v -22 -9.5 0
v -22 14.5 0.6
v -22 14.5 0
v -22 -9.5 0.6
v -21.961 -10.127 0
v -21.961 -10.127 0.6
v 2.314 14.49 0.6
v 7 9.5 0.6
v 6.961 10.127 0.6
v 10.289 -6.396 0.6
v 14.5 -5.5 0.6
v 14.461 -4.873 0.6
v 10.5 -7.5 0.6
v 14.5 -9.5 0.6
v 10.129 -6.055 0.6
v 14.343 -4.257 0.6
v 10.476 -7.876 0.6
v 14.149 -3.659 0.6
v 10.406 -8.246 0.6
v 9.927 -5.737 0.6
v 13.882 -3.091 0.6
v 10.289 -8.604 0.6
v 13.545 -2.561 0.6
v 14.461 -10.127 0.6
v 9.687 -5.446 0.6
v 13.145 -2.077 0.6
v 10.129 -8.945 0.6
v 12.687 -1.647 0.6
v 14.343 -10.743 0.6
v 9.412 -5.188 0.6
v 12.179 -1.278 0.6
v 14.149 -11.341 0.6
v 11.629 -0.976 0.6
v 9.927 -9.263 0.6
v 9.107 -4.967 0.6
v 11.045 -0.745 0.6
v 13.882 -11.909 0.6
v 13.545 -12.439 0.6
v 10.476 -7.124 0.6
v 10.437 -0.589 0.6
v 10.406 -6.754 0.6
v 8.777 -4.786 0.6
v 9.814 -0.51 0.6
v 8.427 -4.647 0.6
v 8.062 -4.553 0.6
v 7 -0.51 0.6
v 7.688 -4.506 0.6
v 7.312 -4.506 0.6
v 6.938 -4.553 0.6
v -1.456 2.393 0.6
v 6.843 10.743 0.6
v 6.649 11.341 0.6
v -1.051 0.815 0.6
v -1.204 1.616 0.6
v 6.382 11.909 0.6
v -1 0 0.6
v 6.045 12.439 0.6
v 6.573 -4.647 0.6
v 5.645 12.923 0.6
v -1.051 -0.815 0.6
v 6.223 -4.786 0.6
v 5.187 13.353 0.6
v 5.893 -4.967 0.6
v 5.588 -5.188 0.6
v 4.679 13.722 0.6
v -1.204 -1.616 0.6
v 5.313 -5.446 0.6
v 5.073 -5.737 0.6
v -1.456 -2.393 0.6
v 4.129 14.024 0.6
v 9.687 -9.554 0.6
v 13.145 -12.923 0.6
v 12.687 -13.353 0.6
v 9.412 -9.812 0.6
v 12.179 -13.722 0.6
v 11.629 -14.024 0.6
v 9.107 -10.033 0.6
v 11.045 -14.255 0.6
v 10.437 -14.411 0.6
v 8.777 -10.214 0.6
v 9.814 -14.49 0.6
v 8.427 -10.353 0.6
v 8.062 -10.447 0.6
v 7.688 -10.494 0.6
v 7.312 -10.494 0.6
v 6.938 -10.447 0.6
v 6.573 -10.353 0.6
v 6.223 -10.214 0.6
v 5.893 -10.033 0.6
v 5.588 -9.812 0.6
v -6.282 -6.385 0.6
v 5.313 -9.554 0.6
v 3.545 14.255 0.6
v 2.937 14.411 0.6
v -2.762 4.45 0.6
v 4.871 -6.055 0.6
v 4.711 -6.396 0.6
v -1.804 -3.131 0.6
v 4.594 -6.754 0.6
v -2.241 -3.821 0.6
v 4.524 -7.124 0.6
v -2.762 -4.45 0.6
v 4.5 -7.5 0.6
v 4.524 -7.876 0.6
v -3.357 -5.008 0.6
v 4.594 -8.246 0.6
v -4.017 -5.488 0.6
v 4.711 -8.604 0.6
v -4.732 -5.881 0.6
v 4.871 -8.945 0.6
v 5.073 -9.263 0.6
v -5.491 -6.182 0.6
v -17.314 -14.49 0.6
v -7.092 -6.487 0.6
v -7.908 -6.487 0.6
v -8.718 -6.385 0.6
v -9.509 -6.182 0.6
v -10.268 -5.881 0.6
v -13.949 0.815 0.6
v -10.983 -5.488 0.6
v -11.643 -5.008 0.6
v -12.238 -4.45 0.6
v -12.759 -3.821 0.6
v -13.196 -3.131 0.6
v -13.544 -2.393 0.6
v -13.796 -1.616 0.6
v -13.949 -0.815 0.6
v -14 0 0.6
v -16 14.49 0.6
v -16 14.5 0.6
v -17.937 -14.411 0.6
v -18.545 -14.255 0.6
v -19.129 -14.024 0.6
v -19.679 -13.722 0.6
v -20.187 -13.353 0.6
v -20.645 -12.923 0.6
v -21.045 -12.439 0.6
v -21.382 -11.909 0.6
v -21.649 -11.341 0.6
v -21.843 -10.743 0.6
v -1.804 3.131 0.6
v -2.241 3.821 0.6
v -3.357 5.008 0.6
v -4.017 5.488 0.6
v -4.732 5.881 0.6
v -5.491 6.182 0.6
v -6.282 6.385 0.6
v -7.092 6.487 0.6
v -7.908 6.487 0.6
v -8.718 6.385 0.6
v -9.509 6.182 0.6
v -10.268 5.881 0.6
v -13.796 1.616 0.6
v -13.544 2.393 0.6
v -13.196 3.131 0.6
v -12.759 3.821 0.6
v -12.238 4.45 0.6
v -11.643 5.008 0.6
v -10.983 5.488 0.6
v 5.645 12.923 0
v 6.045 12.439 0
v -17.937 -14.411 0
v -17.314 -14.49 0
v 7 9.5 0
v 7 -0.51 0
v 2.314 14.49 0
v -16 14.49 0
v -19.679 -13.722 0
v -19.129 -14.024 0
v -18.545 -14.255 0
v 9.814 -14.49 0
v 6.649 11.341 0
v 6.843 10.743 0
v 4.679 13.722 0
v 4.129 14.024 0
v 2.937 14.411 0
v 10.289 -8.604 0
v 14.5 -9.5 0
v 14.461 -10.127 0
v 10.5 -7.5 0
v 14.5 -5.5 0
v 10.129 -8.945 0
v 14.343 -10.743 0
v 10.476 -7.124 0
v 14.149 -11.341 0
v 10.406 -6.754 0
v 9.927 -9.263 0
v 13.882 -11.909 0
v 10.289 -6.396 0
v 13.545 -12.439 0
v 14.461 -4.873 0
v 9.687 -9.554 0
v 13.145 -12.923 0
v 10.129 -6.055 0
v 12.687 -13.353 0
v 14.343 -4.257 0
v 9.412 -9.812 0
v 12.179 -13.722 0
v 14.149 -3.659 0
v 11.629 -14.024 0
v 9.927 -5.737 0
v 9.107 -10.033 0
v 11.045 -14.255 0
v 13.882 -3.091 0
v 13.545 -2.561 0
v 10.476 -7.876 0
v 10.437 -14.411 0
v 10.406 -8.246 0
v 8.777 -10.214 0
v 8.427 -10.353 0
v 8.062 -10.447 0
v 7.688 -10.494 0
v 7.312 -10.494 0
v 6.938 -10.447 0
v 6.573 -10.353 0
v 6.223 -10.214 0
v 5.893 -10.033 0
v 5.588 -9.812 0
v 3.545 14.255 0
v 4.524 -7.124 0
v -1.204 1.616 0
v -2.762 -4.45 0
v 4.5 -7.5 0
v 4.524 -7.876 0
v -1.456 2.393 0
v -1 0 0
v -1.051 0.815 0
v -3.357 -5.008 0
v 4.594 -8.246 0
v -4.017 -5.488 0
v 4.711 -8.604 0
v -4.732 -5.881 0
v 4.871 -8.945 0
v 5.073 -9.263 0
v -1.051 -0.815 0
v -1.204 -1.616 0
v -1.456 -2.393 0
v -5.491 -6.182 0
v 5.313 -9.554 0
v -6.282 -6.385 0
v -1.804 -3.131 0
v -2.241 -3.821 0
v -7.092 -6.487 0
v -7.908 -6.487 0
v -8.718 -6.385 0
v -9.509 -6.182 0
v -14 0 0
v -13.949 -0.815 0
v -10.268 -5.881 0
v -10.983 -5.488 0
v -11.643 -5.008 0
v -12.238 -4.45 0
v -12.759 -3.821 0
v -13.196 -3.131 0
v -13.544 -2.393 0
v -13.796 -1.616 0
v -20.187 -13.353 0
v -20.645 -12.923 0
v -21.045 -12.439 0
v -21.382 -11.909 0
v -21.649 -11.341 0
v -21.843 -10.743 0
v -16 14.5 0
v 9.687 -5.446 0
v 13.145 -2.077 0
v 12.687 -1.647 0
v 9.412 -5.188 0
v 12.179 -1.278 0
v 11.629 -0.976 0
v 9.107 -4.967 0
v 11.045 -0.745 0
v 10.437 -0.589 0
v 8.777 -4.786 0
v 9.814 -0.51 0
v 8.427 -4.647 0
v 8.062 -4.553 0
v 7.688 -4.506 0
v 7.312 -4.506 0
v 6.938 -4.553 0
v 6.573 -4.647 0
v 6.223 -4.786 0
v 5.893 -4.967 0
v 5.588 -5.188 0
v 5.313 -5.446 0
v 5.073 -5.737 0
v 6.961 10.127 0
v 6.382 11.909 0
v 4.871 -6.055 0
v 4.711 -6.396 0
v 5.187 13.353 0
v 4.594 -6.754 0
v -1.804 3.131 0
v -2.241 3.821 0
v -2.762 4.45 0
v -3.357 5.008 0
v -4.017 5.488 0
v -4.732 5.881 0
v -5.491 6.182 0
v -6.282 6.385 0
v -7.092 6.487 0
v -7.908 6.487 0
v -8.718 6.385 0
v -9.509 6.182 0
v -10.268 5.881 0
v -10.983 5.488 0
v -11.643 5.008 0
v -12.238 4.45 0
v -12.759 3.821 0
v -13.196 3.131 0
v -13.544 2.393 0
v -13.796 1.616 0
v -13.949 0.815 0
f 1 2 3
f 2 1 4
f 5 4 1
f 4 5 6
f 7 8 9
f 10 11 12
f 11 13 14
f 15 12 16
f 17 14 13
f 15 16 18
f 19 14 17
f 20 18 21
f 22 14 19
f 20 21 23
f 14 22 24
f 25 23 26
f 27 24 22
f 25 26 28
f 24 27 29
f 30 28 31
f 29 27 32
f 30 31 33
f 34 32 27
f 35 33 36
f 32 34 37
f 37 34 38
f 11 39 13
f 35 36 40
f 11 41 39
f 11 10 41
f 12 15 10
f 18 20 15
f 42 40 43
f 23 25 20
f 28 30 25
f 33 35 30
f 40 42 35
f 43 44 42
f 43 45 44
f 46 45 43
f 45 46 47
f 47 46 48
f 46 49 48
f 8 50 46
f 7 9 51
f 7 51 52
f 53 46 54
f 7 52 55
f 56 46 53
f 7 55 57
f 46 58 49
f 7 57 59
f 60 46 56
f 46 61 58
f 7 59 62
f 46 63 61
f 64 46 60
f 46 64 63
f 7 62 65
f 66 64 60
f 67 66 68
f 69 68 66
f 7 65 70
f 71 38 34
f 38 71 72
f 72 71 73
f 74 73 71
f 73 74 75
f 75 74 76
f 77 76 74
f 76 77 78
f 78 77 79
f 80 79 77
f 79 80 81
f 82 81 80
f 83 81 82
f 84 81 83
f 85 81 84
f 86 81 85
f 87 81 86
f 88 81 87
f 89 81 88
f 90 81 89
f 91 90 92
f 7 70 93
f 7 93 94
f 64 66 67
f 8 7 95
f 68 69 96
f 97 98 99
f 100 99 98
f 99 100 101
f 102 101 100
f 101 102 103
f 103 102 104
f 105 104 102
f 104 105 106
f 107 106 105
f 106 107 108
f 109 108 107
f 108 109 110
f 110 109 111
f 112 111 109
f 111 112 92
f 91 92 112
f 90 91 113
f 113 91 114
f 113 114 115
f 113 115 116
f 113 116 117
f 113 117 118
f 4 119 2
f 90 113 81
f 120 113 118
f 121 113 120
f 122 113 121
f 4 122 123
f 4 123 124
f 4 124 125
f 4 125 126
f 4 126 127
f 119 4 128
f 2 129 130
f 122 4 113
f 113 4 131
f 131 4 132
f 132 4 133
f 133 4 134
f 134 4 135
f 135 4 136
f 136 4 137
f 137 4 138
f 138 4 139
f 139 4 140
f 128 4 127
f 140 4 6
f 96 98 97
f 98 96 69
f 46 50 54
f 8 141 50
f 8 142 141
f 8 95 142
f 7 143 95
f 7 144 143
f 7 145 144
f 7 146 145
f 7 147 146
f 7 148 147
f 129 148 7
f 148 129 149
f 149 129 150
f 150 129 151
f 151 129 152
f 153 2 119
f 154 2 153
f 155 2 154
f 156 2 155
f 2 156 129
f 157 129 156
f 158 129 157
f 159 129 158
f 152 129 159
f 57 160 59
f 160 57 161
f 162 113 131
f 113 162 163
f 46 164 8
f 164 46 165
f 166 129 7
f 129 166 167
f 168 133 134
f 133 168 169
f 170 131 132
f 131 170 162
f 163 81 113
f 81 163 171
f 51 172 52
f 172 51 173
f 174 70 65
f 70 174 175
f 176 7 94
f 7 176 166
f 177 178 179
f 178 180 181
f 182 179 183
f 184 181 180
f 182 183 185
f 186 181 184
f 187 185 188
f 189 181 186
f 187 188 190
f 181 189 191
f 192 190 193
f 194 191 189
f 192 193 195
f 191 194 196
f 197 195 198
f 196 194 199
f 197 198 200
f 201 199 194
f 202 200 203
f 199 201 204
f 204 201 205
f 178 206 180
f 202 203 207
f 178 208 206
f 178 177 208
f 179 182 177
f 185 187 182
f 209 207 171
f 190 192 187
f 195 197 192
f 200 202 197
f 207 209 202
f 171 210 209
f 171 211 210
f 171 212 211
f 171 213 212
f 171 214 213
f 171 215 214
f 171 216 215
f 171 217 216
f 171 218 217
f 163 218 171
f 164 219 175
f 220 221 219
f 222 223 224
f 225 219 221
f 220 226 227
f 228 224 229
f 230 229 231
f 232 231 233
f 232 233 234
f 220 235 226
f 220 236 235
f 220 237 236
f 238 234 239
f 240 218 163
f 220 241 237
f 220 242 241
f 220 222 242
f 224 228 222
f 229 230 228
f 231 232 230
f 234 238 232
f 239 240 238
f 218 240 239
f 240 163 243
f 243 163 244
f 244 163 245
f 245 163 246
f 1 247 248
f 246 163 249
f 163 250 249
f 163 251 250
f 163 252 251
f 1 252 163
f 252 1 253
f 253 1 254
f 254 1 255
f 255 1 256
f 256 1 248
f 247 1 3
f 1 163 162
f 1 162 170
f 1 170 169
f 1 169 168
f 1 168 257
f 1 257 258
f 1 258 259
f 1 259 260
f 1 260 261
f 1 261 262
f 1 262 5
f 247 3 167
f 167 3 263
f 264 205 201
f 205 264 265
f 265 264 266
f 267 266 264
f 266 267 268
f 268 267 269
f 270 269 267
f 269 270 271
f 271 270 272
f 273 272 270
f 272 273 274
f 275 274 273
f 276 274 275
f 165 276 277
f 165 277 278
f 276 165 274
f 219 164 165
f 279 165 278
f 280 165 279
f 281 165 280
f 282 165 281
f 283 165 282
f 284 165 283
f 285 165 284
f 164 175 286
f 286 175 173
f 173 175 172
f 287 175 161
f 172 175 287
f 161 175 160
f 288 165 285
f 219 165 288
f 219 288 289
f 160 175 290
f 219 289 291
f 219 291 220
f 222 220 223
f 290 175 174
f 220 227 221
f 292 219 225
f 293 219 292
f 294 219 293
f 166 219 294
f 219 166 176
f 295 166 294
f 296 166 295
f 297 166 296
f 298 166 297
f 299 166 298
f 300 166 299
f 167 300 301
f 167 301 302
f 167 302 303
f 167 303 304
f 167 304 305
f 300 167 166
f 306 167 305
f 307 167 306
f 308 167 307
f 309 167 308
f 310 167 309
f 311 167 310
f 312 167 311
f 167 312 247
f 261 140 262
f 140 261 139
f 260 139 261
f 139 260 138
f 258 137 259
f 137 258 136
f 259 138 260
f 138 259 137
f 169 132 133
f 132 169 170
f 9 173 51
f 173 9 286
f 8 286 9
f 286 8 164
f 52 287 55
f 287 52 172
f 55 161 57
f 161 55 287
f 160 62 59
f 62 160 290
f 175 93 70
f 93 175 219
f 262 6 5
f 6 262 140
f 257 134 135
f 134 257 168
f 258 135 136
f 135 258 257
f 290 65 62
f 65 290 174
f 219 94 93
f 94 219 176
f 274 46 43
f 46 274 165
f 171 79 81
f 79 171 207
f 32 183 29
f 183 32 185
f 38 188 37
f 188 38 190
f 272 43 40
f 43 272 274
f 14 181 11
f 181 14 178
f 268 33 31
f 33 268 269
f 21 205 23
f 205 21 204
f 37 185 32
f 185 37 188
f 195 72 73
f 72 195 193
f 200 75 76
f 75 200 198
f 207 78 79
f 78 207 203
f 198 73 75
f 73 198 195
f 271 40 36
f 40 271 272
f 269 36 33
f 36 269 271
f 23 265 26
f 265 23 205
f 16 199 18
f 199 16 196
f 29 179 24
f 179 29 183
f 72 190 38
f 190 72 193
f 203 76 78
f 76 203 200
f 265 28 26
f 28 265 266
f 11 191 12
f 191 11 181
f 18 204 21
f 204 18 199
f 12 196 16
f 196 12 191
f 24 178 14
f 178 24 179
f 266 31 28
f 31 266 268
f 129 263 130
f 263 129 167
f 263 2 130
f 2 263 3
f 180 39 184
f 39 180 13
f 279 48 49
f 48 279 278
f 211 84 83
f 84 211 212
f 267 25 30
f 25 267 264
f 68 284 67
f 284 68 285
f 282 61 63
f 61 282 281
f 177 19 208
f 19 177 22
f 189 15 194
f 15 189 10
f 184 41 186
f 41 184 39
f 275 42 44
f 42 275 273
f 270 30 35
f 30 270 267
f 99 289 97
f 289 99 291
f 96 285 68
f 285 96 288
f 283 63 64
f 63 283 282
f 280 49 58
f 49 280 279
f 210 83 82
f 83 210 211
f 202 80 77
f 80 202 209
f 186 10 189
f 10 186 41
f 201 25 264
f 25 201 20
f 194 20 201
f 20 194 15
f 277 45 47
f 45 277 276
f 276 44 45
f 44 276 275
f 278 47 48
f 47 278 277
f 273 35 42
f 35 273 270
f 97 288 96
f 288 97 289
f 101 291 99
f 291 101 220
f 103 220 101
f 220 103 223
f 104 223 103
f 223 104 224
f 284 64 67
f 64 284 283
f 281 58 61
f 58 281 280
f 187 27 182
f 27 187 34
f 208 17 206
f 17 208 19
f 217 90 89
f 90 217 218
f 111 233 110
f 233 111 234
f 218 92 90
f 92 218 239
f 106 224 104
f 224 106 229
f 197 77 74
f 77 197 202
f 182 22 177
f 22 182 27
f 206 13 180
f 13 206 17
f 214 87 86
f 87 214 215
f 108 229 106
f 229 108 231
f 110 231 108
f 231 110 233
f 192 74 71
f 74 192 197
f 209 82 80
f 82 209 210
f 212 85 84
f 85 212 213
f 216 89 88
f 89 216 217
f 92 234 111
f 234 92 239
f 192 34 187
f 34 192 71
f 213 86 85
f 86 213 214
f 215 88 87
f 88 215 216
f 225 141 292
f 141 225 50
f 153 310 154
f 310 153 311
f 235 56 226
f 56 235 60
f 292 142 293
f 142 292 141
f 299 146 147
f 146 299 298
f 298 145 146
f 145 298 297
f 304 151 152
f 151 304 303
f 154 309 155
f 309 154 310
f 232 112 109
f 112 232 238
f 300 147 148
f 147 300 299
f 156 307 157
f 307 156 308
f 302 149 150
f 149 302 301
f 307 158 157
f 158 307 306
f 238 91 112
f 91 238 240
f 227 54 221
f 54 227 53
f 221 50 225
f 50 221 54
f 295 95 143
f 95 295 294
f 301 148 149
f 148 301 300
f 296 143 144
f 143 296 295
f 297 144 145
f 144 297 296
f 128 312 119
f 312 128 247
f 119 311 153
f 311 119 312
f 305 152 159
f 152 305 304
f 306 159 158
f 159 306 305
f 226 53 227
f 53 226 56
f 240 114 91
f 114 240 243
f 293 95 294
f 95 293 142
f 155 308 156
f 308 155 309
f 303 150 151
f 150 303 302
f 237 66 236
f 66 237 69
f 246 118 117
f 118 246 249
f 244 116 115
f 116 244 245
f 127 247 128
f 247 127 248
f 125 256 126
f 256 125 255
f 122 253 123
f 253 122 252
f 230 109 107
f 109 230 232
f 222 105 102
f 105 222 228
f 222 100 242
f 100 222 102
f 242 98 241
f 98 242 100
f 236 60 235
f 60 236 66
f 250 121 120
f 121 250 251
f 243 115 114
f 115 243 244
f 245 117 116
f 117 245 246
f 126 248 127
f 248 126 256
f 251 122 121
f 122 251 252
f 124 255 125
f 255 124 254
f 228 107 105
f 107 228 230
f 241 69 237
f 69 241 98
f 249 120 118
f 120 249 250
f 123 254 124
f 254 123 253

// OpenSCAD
$fn = 50;


difference() {
	union() {
		translate(v = [-7.5000000000, 0, 0]) {
			hull() {
				translate(v = [-9.5000000000, 9.5000000000, 0]) {
					cylinder(h = 0.6000000000, r = 5);
				}
				translate(v = [9.5000000000, 9.5000000000, 0]) {
					cylinder(h = 0.6000000000, r = 5);
				}
				translate(v = [-9.5000000000, -9.5000000000, 0]) {
					cylinder(h = 0.6000000000, r = 5);
				}
				translate(v = [9.5000000000, -9.5000000000, 0]) {
					cylinder(h = 0.6000000000, r = 5);
				}
			}
		}
		translate(v = [0.0000000000, -7.5000000000, 0]) {
			hull() {
				translate(v = [-9.5000000000, 2.0000000000, 0]) {
					cylinder(h = 0.6000000000, r = 5);
				}
				translate(v = [9.5000000000, 2.0000000000, 0]) {
					cylinder(h = 0.6000000000, r = 5);
				}
				translate(v = [-9.5000000000, -2.0000000000, 0]) {
					cylinder(h = 0.6000000000, r = 5);
				}
				translate(v = [9.5000000000, -2.0000000000, 0]) {
					cylinder(h = 0.6000000000, r = 5);
				}
			}
		}
		translate(v = [-22.0000000000, 8.5000000000, 0]) {
			cube(size = [6, 6, 0.6000000000]);
		}
	}
	union() {
		translate(v = [7.5000000000, -7.5000000000, -50.0000000000]) {
			cylinder(h = 100, r = 3.0000000000);
		}
		translate(v = [-7.5000000000, 0, 0.0000000000]) {
			cylinder(h = 0.6000000000, r = 6.5000000000);
		}
	}
}
